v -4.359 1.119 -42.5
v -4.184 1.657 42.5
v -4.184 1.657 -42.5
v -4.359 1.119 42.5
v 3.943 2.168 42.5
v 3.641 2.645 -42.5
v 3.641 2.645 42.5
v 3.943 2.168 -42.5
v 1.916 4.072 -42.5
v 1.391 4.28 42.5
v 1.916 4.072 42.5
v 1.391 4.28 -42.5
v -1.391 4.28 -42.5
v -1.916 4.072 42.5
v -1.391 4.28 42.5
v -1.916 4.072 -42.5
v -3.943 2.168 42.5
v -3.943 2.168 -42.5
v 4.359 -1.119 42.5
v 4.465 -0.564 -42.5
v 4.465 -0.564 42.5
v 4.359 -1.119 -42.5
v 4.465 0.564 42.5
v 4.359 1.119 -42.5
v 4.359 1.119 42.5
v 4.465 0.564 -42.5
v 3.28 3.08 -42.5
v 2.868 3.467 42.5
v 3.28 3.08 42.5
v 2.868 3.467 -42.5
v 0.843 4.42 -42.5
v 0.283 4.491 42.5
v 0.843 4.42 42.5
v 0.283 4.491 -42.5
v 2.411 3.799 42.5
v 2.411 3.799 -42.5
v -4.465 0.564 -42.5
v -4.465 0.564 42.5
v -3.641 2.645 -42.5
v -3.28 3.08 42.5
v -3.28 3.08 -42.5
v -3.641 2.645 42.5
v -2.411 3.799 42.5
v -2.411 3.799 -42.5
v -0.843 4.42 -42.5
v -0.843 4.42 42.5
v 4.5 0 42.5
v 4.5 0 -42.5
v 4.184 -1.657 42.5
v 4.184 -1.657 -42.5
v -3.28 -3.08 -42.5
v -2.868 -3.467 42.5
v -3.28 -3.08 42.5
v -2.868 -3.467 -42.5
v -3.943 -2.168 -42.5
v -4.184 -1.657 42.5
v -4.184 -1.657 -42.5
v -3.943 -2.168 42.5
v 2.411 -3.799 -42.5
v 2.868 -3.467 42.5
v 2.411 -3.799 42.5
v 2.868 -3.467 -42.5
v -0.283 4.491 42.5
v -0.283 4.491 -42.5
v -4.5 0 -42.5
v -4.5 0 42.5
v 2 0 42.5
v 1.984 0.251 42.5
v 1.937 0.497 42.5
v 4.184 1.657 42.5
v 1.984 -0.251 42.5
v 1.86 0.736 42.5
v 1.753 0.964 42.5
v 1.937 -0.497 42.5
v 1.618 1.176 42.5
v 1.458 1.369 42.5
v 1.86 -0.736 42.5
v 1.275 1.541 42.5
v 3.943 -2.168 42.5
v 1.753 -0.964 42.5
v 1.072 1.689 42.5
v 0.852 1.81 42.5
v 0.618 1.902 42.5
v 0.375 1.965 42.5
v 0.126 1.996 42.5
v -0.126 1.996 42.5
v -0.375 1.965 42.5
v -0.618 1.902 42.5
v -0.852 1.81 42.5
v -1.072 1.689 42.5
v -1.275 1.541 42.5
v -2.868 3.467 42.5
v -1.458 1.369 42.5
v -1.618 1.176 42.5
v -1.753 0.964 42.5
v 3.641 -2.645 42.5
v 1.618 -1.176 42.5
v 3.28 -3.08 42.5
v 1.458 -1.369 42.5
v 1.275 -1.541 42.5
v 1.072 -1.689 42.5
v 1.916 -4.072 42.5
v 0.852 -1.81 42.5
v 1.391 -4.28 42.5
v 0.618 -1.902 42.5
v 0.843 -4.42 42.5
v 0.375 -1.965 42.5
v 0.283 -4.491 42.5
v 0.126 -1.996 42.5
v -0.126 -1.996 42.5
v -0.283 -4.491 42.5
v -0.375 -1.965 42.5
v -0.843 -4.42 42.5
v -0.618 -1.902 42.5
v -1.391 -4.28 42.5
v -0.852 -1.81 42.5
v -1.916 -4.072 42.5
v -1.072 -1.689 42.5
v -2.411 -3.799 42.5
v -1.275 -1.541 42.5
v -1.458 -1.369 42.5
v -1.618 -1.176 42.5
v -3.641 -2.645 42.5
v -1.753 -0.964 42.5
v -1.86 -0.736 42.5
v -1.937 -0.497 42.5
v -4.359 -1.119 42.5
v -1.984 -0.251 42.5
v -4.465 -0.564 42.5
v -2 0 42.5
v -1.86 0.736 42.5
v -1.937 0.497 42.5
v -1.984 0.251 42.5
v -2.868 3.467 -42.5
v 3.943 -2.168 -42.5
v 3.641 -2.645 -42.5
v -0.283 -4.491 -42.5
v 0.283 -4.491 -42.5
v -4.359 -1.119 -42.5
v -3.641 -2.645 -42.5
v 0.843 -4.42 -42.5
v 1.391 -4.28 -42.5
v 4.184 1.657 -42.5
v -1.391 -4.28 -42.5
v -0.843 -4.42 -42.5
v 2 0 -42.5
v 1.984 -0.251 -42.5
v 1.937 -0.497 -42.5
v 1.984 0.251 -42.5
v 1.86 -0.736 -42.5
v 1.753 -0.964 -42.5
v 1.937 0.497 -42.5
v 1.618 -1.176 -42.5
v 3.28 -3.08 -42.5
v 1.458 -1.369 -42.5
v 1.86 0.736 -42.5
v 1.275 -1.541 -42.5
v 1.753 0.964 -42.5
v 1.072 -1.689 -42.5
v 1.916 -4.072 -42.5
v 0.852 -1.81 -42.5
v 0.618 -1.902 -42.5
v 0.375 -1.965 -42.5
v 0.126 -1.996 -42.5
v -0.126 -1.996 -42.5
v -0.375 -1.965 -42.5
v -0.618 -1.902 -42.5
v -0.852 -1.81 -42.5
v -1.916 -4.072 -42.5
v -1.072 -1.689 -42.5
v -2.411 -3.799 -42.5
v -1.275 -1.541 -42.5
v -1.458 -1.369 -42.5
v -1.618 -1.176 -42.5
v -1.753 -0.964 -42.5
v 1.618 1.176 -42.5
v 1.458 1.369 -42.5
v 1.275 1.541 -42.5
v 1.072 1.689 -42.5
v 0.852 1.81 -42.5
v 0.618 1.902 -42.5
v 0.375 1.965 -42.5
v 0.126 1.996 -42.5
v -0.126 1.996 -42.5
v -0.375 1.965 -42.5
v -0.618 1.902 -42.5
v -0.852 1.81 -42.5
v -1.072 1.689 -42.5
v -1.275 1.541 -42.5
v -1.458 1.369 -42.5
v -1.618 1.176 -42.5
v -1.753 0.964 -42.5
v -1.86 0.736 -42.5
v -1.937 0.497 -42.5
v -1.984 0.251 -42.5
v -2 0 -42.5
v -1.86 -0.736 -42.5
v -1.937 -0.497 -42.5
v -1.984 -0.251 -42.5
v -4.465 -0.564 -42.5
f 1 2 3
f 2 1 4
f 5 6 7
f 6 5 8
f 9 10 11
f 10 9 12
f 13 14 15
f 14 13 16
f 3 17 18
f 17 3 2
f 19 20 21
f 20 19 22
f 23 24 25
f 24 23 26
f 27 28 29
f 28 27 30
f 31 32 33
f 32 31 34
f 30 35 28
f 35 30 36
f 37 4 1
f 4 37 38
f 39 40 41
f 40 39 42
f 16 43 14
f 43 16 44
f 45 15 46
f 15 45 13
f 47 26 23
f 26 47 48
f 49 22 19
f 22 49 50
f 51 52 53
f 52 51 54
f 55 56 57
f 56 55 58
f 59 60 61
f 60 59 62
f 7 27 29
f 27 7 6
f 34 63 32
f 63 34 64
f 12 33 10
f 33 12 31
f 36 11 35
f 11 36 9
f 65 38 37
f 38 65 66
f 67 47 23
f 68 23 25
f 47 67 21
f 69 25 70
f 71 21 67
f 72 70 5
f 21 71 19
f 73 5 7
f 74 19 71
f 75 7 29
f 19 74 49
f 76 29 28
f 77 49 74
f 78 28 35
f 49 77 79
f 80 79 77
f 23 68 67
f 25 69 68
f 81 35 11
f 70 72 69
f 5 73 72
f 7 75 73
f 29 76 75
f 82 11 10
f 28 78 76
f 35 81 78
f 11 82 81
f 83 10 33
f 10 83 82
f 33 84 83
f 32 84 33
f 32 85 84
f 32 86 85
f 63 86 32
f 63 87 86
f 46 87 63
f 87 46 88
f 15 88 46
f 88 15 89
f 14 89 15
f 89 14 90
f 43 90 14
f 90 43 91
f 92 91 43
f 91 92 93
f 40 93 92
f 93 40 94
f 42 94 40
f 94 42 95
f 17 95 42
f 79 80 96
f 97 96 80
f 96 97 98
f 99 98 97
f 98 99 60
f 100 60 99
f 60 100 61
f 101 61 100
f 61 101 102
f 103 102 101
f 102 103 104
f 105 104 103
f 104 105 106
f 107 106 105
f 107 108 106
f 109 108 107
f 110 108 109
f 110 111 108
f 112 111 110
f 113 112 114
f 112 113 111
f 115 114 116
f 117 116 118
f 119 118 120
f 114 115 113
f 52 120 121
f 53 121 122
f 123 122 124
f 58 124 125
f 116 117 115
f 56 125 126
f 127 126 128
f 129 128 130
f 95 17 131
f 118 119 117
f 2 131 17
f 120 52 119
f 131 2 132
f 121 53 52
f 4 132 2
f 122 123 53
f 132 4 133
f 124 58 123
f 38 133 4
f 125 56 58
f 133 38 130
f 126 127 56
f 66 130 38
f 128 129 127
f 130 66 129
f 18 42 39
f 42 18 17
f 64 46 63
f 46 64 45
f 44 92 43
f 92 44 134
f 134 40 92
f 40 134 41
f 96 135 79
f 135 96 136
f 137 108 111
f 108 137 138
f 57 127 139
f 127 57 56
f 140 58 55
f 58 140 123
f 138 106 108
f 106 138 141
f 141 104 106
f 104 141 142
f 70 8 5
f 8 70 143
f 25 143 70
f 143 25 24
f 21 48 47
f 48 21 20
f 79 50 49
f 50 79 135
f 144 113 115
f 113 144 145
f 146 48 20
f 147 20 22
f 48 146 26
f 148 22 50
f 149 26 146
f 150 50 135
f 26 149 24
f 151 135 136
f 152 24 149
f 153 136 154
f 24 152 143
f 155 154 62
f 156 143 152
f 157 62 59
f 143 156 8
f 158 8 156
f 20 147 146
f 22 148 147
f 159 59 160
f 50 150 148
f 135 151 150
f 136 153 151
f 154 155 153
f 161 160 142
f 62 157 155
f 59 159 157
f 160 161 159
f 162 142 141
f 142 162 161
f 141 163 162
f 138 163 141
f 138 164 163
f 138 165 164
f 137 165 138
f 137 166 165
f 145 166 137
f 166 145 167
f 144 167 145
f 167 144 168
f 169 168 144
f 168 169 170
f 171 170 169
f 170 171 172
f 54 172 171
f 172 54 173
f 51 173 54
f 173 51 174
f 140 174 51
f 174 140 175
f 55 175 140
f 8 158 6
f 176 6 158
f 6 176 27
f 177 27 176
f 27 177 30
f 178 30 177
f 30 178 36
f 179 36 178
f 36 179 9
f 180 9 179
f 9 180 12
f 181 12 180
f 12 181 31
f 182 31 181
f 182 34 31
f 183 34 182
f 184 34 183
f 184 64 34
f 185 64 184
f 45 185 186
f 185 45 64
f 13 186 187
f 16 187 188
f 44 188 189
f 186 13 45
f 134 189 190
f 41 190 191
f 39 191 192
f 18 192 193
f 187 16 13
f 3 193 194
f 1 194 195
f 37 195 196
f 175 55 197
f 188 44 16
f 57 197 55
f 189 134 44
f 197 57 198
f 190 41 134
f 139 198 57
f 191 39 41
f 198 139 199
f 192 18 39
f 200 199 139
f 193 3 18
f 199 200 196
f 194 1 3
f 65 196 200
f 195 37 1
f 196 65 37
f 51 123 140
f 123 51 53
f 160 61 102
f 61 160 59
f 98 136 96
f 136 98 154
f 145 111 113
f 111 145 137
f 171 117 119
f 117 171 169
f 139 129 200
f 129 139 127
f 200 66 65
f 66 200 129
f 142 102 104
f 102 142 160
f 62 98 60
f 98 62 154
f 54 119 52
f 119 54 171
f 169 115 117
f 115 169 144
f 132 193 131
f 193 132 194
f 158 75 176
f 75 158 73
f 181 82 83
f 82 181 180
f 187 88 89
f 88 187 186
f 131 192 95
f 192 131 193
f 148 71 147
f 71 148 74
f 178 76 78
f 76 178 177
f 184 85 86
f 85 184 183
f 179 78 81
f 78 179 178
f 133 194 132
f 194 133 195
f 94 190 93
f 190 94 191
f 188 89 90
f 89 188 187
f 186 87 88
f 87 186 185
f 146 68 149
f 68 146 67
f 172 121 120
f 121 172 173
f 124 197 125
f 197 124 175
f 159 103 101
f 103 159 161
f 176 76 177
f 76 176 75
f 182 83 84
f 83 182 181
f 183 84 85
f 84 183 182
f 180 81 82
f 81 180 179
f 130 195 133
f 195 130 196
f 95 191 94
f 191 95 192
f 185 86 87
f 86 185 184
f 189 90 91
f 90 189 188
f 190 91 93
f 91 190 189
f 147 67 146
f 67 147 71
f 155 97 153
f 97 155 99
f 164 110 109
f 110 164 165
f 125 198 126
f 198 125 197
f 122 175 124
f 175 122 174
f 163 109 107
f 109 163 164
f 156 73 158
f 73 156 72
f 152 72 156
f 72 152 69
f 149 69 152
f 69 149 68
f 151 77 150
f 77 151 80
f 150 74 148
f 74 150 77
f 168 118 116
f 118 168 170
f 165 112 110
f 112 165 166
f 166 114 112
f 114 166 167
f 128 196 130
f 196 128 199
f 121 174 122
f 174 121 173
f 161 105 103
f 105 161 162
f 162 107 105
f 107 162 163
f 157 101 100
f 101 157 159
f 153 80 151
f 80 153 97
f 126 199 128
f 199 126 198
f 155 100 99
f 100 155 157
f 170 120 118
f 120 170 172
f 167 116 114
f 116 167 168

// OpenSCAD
$fn = 50;


difference() {
	union() {
		translate(v = [0, 0, -42.5000000000]) {
			cylinder(h = 85, r = 4.5000000000);
		}
	}
	union() {
		translate(v = [0, 0, -100.0000000000]) {
			cylinder(h = 200, r = 2);
		}
	}
}
